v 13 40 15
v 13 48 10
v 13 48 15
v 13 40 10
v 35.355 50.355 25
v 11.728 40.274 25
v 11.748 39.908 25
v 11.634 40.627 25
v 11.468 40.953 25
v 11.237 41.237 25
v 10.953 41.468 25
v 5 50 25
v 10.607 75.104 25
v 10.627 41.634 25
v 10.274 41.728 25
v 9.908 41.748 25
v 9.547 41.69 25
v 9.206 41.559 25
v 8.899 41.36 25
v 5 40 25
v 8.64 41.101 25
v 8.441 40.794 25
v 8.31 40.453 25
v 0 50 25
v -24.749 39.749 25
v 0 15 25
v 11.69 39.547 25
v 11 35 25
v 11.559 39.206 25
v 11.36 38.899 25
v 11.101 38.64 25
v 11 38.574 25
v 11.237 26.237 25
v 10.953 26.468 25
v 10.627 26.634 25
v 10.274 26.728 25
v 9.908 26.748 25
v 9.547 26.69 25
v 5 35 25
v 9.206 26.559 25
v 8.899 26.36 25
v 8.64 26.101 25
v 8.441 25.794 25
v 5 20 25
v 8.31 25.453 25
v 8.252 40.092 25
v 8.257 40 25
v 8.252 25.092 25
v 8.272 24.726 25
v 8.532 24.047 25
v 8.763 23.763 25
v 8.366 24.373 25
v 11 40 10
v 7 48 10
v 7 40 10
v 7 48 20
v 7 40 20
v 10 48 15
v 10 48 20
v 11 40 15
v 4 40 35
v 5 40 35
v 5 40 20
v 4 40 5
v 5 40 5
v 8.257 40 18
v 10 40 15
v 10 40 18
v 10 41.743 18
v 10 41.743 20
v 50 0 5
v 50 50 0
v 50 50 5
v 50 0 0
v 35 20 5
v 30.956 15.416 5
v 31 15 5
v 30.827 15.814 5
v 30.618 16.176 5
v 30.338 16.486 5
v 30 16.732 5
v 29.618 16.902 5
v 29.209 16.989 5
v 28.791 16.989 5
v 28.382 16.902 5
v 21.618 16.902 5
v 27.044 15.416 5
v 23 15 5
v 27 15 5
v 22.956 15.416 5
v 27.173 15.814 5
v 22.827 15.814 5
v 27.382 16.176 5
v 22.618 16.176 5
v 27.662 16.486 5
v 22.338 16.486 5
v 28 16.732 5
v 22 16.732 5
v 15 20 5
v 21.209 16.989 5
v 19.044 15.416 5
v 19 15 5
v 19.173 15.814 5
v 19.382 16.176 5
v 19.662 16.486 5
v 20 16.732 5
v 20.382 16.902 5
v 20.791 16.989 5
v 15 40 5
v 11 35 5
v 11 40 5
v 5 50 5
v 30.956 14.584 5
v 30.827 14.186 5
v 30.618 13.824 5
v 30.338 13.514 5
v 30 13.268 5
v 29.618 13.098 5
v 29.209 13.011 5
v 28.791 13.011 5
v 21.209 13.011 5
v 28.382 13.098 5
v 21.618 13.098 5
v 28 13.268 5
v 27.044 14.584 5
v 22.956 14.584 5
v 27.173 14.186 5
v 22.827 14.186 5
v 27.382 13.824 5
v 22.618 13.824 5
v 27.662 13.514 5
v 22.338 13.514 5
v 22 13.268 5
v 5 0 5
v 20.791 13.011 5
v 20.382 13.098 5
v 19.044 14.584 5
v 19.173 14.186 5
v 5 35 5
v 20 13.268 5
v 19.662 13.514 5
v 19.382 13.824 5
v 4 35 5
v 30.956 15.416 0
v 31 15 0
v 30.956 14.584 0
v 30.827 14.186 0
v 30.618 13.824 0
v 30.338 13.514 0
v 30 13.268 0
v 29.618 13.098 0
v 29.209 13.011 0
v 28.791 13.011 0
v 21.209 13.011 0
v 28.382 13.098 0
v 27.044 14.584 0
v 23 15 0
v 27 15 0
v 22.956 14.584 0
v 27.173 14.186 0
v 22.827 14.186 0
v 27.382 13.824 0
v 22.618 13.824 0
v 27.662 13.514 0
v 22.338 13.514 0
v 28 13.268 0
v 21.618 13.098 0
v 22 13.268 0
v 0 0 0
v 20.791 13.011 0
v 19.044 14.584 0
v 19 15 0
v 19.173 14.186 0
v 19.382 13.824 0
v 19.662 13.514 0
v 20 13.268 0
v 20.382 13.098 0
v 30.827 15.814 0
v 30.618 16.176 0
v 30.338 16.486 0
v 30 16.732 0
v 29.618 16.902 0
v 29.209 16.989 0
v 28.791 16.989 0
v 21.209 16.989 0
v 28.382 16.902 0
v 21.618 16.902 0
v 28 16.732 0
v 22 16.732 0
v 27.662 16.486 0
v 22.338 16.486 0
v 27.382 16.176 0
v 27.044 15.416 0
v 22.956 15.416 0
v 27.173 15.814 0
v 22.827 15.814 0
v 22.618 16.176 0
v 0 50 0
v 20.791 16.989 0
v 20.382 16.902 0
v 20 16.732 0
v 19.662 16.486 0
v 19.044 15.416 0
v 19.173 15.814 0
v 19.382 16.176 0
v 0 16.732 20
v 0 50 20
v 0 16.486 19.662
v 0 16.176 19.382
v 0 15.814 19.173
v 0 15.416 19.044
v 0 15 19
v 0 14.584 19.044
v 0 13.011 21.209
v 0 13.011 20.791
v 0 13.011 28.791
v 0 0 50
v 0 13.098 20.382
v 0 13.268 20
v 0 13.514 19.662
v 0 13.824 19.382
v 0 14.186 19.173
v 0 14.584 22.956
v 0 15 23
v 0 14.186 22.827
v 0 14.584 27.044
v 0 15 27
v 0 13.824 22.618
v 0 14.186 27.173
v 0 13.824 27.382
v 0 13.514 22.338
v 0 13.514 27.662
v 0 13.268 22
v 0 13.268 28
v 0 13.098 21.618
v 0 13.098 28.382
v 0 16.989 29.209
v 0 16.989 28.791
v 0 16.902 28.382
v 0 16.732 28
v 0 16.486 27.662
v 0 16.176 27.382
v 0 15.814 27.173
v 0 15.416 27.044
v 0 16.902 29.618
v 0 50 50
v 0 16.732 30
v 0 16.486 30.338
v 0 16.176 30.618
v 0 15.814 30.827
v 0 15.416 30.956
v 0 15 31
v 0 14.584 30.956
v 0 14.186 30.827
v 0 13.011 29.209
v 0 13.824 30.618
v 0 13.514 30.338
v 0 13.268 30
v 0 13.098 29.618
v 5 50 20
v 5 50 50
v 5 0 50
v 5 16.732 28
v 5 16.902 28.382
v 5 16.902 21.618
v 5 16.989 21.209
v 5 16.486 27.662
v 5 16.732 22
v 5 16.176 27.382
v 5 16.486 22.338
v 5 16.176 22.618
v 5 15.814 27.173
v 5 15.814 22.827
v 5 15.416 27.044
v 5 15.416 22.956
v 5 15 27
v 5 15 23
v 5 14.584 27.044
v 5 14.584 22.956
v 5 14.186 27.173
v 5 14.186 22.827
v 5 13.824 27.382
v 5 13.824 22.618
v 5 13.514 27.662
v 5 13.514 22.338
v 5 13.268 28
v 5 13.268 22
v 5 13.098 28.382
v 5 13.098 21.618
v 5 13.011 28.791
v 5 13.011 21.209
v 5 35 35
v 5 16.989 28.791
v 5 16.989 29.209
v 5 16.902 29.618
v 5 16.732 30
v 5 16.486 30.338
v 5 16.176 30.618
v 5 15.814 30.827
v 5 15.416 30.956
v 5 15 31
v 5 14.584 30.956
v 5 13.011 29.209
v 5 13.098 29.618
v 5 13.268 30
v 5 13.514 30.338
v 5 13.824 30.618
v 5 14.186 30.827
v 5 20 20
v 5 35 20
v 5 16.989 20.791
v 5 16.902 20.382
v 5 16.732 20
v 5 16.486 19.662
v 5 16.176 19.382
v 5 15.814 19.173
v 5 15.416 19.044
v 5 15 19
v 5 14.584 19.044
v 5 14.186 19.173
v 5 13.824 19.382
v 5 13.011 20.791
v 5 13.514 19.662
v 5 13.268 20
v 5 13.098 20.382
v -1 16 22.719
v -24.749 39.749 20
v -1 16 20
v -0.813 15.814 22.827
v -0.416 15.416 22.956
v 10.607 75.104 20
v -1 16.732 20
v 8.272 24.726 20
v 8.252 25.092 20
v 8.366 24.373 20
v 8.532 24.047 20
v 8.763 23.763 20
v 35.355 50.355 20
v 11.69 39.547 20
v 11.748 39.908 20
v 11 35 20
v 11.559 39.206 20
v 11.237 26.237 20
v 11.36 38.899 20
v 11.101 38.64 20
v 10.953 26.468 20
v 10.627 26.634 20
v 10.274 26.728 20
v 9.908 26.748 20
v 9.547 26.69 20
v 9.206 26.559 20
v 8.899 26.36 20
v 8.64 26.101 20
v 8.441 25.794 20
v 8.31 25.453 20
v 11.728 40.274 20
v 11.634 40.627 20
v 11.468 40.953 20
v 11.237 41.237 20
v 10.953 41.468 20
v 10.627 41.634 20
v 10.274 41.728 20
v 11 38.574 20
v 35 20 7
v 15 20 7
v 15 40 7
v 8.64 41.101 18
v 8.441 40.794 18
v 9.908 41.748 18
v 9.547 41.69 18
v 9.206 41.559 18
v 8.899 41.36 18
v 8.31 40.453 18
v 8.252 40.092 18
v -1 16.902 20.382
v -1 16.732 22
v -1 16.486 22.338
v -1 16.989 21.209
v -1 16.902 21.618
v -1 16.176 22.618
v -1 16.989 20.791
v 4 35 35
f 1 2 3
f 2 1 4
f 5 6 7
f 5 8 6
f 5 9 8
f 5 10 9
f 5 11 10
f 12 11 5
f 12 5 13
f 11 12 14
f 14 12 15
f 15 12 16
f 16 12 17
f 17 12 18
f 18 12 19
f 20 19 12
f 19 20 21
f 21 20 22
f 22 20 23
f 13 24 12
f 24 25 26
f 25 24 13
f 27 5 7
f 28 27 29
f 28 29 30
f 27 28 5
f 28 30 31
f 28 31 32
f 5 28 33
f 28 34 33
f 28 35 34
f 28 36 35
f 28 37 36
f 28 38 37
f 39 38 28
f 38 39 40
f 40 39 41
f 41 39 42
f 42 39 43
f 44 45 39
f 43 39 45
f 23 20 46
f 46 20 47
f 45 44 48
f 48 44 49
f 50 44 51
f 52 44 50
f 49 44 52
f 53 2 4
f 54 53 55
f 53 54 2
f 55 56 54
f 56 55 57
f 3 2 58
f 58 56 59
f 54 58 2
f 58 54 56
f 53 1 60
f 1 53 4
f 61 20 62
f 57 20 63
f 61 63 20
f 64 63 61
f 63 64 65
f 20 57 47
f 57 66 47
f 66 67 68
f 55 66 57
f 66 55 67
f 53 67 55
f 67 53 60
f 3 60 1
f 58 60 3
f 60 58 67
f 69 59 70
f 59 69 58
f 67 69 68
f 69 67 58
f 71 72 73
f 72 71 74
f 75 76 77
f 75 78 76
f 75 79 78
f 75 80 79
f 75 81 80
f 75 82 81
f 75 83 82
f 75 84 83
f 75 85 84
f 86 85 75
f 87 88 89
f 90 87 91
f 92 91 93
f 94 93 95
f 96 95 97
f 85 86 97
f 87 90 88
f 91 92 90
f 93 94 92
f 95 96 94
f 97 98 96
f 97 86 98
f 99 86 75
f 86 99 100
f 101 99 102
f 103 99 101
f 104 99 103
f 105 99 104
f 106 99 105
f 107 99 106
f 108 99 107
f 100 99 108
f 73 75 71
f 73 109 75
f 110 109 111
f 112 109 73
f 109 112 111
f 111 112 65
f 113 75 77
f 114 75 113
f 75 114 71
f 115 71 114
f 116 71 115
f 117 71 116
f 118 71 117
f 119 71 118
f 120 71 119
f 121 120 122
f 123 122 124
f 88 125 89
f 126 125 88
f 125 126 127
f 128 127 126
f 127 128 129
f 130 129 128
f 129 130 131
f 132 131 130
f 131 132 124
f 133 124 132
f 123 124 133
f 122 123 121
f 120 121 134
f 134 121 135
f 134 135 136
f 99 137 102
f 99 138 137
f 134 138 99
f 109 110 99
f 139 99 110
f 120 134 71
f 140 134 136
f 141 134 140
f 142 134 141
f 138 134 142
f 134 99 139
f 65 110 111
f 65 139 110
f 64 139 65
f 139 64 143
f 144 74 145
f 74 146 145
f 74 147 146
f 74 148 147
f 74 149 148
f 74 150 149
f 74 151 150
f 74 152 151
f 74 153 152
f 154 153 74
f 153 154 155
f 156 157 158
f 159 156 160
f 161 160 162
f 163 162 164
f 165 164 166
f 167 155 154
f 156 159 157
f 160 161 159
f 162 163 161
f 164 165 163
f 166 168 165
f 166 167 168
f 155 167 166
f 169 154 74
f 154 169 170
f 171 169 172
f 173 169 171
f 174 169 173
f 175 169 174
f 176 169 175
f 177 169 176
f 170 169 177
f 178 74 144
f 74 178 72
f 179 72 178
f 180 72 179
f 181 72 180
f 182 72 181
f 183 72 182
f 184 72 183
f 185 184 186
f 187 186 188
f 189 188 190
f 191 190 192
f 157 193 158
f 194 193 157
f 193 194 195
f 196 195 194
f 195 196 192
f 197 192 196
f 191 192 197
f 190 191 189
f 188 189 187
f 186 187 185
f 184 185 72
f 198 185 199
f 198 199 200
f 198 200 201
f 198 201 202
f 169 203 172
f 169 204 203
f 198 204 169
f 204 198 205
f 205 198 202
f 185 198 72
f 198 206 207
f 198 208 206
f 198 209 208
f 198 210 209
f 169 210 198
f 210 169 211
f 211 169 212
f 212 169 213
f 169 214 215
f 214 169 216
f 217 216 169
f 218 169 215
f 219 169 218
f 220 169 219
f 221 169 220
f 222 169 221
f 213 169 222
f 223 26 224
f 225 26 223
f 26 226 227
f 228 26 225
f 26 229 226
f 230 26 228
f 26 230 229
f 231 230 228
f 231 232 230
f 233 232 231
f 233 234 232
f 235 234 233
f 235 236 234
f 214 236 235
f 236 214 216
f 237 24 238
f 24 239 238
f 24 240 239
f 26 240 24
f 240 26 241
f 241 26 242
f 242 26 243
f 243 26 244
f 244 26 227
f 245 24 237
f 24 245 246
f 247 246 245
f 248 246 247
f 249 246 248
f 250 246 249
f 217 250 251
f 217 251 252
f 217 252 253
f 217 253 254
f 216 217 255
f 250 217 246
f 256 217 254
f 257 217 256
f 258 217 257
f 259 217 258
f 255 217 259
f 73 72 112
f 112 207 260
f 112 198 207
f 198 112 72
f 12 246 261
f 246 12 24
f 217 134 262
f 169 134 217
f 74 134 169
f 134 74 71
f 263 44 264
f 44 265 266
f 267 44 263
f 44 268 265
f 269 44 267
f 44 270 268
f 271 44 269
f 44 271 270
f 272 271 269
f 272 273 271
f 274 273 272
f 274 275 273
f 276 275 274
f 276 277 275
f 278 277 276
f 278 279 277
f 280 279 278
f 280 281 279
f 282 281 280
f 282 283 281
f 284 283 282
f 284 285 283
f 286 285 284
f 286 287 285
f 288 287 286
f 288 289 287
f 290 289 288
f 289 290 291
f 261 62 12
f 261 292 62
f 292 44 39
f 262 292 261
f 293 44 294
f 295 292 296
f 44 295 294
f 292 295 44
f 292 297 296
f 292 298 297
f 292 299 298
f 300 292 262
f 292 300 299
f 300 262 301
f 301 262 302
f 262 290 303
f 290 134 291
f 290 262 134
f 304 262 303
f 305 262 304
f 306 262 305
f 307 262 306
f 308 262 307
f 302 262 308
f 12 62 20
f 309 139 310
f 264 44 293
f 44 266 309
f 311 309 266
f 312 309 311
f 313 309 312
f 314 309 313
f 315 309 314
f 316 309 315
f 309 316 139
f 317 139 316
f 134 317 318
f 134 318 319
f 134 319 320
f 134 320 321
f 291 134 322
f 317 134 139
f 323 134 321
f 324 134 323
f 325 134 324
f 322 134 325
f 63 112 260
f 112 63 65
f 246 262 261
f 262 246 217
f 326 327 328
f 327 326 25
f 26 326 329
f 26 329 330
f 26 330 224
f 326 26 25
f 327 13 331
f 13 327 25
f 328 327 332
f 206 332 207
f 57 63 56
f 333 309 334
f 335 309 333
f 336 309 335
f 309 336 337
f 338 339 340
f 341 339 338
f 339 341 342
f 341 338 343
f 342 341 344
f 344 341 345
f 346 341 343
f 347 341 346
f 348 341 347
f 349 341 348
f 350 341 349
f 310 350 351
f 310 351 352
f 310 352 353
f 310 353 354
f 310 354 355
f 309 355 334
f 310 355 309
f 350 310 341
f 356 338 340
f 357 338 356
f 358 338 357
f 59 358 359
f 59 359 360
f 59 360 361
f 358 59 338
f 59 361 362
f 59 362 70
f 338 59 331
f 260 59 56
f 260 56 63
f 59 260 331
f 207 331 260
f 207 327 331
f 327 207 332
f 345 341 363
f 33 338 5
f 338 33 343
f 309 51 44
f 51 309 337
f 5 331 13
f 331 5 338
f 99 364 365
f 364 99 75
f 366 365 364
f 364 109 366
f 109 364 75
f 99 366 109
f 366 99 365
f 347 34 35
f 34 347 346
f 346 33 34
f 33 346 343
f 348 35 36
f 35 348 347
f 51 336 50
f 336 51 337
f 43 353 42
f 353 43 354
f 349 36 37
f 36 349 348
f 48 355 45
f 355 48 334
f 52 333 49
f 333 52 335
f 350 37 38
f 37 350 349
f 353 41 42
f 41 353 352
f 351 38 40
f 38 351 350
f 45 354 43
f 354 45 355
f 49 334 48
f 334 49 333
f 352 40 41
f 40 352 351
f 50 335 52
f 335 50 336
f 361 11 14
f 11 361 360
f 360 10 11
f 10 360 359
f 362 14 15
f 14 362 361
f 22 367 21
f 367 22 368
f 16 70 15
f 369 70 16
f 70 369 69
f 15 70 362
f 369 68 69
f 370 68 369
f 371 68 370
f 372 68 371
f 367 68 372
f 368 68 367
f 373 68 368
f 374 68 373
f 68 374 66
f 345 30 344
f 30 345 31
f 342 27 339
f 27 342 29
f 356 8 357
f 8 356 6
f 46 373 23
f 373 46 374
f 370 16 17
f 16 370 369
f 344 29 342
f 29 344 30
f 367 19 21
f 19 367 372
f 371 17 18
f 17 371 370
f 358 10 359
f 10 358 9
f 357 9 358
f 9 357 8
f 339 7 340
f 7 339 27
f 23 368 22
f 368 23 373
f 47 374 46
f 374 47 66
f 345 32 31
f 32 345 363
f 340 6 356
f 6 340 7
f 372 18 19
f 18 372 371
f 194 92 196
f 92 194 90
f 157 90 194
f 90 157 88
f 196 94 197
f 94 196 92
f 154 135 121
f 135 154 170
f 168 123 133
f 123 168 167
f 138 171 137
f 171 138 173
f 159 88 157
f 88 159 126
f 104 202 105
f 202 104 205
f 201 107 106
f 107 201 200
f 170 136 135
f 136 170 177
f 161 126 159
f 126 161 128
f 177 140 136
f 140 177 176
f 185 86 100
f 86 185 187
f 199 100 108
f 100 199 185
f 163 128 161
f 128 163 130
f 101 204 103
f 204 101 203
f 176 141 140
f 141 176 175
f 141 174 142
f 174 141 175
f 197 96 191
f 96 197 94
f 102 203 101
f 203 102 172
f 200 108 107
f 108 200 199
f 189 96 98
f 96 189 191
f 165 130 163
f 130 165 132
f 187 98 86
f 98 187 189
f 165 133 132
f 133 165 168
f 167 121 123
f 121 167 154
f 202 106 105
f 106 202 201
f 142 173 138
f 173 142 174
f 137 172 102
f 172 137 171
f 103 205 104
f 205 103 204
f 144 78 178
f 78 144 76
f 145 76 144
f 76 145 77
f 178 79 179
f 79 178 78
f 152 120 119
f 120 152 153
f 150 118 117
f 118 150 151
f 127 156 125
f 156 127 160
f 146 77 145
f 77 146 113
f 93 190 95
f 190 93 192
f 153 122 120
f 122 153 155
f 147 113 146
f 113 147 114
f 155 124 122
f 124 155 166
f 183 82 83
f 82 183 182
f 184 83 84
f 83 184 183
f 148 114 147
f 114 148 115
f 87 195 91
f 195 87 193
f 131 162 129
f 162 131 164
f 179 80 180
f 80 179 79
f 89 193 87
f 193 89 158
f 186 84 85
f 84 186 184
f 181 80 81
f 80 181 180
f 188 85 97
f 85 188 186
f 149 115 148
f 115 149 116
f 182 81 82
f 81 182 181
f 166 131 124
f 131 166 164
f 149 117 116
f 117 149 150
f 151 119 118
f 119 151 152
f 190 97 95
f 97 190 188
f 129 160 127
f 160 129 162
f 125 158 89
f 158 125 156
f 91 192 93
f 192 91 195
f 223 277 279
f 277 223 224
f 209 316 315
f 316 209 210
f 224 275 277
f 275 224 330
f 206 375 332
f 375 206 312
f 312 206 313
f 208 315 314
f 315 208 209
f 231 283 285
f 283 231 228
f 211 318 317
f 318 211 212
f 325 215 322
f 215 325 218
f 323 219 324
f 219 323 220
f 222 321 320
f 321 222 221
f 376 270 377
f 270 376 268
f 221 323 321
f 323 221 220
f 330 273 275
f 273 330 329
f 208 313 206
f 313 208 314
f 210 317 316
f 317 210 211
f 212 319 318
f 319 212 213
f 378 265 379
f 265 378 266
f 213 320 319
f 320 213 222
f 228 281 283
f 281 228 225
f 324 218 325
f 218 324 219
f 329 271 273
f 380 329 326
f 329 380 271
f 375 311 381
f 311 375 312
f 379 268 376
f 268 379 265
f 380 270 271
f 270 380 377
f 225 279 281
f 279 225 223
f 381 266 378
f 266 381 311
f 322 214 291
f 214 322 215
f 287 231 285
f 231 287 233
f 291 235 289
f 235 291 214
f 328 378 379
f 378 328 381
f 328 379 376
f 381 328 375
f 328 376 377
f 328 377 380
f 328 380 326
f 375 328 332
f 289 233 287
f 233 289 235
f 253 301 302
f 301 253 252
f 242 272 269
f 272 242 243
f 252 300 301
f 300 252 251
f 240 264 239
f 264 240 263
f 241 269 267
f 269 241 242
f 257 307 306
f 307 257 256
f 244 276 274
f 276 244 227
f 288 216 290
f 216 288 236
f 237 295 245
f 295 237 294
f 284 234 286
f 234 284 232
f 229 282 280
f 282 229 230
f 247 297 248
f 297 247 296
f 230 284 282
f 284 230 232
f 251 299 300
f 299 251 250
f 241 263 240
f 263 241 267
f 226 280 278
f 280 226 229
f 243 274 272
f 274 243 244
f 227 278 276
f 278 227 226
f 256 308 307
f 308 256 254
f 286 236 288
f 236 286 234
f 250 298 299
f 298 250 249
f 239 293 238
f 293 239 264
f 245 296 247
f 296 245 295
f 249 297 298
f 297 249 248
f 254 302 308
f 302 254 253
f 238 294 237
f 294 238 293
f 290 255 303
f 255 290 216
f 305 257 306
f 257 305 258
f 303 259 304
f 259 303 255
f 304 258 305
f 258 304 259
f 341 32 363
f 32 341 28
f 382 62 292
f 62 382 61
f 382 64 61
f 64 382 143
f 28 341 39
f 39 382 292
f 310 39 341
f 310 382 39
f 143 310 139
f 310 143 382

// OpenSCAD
// ESP32-CAM Security Camera - Corner Mount Bracket
// For Creality Ender-3 V3
// Material: Hyper-PAL (Grey) or Hyper-PETG
// Use for room corners or ceiling/wall junctions

// ===== PARAMETERS =====
case_length = 50;
bracket_arm_length = 50;
bracket_arm_width = 50;
bracket_thickness = 5;

// Mounting holes
case_mount_spacing_x = 40;
case_mount_spacing_y = 25;
mount_hole_diameter = 3.5;  // M3 screw clearance
wall_hole_diameter = 4;     // Wall screw size

// ===== CORNER MOUNT BRACKET =====

module corner_bracket() {
    difference() {
        union() {
            // Horizontal arm (attaches to one wall)
            cube([bracket_arm_length, bracket_arm_width, bracket_thickness]);

            // Vertical arm (attaches to perpendicular wall)
            cube([bracket_thickness, bracket_arm_width, bracket_arm_length]);

            // Case mounting platform (at 45° in corner)
            translate([bracket_arm_length/2 - case_length/2, bracket_arm_width - 35, 20])
                rotate([0, 0, 45])
                cube([case_length, 35, bracket_thickness]);

            // Reinforcement gussets (triangular supports)
            // Gusset 1: Horizontal to vertical transition
            translate([0, bracket_arm_width/2, 0])
                rotate([0, 0, 0])
                linear_extrude(height=2)
                polygon([
                    [0, 0],
                    [0, 15],
                    [bracket_thickness, 15],
                    [bracket_thickness, 0],
                    [20, 0],
                    [20, -bracket_arm_width/2]
                ]);

            // Gusset 2: Support platform
            translate([bracket_arm_length/2 - 10, bracket_arm_width - 30, bracket_thickness])
                linear_extrude(height=2)
                polygon([
                    [0, 0],
                    [0, 20],
                    [20, 0]
                ]);

            // Cable routing clip (integrated)
            translate([bracket_thickness + 2, bracket_arm_width - 10, 10])
                difference() {
                    cube([6, 8, 15]);
                    translate([3, -1, 5])
                        cube([3, 10, 8]);
                }
        }

        // Case mounting holes (4 holes, positioned on angled platform)
        // These align with the rear cover bosses
        case_mount_base_x = bracket_arm_length/2 - case_length/2;
        case_mount_base_y = bracket_arm_width - 35;

        case_mount_positions = [
            [case_mount_base_x + 10, case_mount_base_y + 10],
            [case_mount_base_x + 40, case_mount_base_y + 10],
            [case_mount_base_x + 10, case_mount_base_y + 25],
            [case_mount_base_x + 40, case_mount_base_y + 25]
        ];

        for (pos = case_mount_positions) {
            translate([pos[0], pos[1], 18])
                rotate([0, 0, 45])
                cylinder(h=bracket_thickness+4, d=mount_hole_diameter, $fn=30);
        }

        // Wall mounting holes - Horizontal arm (2 holes)
        translate([bracket_arm_length/2 - 4, 15, -1])
            cylinder(h=bracket_thickness+2, d=wall_hole_diameter, $fn=30);

        translate([bracket_arm_length/2 + 4, 15, -1])
            cylinder(h=bracket_thickness+2, d=wall_hole_diameter, $fn=30);

        // Wall mounting holes - Vertical arm (2 holes)
        translate([-1, 15, bracket_arm_length/2 - 4])
            rotate([0, 90, 0])
            cylinder(h=bracket_thickness+2, d=wall_hole_diameter, $fn=30);

        translate([-1, 15, bracket_arm_length/2 + 4])
            rotate([0, 90, 0])
            cylinder(h=bracket_thickness+2, d=wall_hole_diameter, $fn=30);

        // Cable pass-through (vertical slot in corner)
        translate([bracket_thickness - 1, bracket_arm_width - 15, 5])
            cube([bracket_thickness+2, 5, 30]);
    }
}

// Render the corner bracket
corner_bracket();

// Add text labels (optional)
translate([bracket_arm_length/2 - 8, 8, 0.5])
    linear_extrude(height=0.5)
    text("CORNER", size=3, font="Arial:style=Bold");

// Print orientation:
// Print with horizontal arm flat on bed
// Vertical arm pointing up
// Use supports for the angled platform
// 40% infill recommended
